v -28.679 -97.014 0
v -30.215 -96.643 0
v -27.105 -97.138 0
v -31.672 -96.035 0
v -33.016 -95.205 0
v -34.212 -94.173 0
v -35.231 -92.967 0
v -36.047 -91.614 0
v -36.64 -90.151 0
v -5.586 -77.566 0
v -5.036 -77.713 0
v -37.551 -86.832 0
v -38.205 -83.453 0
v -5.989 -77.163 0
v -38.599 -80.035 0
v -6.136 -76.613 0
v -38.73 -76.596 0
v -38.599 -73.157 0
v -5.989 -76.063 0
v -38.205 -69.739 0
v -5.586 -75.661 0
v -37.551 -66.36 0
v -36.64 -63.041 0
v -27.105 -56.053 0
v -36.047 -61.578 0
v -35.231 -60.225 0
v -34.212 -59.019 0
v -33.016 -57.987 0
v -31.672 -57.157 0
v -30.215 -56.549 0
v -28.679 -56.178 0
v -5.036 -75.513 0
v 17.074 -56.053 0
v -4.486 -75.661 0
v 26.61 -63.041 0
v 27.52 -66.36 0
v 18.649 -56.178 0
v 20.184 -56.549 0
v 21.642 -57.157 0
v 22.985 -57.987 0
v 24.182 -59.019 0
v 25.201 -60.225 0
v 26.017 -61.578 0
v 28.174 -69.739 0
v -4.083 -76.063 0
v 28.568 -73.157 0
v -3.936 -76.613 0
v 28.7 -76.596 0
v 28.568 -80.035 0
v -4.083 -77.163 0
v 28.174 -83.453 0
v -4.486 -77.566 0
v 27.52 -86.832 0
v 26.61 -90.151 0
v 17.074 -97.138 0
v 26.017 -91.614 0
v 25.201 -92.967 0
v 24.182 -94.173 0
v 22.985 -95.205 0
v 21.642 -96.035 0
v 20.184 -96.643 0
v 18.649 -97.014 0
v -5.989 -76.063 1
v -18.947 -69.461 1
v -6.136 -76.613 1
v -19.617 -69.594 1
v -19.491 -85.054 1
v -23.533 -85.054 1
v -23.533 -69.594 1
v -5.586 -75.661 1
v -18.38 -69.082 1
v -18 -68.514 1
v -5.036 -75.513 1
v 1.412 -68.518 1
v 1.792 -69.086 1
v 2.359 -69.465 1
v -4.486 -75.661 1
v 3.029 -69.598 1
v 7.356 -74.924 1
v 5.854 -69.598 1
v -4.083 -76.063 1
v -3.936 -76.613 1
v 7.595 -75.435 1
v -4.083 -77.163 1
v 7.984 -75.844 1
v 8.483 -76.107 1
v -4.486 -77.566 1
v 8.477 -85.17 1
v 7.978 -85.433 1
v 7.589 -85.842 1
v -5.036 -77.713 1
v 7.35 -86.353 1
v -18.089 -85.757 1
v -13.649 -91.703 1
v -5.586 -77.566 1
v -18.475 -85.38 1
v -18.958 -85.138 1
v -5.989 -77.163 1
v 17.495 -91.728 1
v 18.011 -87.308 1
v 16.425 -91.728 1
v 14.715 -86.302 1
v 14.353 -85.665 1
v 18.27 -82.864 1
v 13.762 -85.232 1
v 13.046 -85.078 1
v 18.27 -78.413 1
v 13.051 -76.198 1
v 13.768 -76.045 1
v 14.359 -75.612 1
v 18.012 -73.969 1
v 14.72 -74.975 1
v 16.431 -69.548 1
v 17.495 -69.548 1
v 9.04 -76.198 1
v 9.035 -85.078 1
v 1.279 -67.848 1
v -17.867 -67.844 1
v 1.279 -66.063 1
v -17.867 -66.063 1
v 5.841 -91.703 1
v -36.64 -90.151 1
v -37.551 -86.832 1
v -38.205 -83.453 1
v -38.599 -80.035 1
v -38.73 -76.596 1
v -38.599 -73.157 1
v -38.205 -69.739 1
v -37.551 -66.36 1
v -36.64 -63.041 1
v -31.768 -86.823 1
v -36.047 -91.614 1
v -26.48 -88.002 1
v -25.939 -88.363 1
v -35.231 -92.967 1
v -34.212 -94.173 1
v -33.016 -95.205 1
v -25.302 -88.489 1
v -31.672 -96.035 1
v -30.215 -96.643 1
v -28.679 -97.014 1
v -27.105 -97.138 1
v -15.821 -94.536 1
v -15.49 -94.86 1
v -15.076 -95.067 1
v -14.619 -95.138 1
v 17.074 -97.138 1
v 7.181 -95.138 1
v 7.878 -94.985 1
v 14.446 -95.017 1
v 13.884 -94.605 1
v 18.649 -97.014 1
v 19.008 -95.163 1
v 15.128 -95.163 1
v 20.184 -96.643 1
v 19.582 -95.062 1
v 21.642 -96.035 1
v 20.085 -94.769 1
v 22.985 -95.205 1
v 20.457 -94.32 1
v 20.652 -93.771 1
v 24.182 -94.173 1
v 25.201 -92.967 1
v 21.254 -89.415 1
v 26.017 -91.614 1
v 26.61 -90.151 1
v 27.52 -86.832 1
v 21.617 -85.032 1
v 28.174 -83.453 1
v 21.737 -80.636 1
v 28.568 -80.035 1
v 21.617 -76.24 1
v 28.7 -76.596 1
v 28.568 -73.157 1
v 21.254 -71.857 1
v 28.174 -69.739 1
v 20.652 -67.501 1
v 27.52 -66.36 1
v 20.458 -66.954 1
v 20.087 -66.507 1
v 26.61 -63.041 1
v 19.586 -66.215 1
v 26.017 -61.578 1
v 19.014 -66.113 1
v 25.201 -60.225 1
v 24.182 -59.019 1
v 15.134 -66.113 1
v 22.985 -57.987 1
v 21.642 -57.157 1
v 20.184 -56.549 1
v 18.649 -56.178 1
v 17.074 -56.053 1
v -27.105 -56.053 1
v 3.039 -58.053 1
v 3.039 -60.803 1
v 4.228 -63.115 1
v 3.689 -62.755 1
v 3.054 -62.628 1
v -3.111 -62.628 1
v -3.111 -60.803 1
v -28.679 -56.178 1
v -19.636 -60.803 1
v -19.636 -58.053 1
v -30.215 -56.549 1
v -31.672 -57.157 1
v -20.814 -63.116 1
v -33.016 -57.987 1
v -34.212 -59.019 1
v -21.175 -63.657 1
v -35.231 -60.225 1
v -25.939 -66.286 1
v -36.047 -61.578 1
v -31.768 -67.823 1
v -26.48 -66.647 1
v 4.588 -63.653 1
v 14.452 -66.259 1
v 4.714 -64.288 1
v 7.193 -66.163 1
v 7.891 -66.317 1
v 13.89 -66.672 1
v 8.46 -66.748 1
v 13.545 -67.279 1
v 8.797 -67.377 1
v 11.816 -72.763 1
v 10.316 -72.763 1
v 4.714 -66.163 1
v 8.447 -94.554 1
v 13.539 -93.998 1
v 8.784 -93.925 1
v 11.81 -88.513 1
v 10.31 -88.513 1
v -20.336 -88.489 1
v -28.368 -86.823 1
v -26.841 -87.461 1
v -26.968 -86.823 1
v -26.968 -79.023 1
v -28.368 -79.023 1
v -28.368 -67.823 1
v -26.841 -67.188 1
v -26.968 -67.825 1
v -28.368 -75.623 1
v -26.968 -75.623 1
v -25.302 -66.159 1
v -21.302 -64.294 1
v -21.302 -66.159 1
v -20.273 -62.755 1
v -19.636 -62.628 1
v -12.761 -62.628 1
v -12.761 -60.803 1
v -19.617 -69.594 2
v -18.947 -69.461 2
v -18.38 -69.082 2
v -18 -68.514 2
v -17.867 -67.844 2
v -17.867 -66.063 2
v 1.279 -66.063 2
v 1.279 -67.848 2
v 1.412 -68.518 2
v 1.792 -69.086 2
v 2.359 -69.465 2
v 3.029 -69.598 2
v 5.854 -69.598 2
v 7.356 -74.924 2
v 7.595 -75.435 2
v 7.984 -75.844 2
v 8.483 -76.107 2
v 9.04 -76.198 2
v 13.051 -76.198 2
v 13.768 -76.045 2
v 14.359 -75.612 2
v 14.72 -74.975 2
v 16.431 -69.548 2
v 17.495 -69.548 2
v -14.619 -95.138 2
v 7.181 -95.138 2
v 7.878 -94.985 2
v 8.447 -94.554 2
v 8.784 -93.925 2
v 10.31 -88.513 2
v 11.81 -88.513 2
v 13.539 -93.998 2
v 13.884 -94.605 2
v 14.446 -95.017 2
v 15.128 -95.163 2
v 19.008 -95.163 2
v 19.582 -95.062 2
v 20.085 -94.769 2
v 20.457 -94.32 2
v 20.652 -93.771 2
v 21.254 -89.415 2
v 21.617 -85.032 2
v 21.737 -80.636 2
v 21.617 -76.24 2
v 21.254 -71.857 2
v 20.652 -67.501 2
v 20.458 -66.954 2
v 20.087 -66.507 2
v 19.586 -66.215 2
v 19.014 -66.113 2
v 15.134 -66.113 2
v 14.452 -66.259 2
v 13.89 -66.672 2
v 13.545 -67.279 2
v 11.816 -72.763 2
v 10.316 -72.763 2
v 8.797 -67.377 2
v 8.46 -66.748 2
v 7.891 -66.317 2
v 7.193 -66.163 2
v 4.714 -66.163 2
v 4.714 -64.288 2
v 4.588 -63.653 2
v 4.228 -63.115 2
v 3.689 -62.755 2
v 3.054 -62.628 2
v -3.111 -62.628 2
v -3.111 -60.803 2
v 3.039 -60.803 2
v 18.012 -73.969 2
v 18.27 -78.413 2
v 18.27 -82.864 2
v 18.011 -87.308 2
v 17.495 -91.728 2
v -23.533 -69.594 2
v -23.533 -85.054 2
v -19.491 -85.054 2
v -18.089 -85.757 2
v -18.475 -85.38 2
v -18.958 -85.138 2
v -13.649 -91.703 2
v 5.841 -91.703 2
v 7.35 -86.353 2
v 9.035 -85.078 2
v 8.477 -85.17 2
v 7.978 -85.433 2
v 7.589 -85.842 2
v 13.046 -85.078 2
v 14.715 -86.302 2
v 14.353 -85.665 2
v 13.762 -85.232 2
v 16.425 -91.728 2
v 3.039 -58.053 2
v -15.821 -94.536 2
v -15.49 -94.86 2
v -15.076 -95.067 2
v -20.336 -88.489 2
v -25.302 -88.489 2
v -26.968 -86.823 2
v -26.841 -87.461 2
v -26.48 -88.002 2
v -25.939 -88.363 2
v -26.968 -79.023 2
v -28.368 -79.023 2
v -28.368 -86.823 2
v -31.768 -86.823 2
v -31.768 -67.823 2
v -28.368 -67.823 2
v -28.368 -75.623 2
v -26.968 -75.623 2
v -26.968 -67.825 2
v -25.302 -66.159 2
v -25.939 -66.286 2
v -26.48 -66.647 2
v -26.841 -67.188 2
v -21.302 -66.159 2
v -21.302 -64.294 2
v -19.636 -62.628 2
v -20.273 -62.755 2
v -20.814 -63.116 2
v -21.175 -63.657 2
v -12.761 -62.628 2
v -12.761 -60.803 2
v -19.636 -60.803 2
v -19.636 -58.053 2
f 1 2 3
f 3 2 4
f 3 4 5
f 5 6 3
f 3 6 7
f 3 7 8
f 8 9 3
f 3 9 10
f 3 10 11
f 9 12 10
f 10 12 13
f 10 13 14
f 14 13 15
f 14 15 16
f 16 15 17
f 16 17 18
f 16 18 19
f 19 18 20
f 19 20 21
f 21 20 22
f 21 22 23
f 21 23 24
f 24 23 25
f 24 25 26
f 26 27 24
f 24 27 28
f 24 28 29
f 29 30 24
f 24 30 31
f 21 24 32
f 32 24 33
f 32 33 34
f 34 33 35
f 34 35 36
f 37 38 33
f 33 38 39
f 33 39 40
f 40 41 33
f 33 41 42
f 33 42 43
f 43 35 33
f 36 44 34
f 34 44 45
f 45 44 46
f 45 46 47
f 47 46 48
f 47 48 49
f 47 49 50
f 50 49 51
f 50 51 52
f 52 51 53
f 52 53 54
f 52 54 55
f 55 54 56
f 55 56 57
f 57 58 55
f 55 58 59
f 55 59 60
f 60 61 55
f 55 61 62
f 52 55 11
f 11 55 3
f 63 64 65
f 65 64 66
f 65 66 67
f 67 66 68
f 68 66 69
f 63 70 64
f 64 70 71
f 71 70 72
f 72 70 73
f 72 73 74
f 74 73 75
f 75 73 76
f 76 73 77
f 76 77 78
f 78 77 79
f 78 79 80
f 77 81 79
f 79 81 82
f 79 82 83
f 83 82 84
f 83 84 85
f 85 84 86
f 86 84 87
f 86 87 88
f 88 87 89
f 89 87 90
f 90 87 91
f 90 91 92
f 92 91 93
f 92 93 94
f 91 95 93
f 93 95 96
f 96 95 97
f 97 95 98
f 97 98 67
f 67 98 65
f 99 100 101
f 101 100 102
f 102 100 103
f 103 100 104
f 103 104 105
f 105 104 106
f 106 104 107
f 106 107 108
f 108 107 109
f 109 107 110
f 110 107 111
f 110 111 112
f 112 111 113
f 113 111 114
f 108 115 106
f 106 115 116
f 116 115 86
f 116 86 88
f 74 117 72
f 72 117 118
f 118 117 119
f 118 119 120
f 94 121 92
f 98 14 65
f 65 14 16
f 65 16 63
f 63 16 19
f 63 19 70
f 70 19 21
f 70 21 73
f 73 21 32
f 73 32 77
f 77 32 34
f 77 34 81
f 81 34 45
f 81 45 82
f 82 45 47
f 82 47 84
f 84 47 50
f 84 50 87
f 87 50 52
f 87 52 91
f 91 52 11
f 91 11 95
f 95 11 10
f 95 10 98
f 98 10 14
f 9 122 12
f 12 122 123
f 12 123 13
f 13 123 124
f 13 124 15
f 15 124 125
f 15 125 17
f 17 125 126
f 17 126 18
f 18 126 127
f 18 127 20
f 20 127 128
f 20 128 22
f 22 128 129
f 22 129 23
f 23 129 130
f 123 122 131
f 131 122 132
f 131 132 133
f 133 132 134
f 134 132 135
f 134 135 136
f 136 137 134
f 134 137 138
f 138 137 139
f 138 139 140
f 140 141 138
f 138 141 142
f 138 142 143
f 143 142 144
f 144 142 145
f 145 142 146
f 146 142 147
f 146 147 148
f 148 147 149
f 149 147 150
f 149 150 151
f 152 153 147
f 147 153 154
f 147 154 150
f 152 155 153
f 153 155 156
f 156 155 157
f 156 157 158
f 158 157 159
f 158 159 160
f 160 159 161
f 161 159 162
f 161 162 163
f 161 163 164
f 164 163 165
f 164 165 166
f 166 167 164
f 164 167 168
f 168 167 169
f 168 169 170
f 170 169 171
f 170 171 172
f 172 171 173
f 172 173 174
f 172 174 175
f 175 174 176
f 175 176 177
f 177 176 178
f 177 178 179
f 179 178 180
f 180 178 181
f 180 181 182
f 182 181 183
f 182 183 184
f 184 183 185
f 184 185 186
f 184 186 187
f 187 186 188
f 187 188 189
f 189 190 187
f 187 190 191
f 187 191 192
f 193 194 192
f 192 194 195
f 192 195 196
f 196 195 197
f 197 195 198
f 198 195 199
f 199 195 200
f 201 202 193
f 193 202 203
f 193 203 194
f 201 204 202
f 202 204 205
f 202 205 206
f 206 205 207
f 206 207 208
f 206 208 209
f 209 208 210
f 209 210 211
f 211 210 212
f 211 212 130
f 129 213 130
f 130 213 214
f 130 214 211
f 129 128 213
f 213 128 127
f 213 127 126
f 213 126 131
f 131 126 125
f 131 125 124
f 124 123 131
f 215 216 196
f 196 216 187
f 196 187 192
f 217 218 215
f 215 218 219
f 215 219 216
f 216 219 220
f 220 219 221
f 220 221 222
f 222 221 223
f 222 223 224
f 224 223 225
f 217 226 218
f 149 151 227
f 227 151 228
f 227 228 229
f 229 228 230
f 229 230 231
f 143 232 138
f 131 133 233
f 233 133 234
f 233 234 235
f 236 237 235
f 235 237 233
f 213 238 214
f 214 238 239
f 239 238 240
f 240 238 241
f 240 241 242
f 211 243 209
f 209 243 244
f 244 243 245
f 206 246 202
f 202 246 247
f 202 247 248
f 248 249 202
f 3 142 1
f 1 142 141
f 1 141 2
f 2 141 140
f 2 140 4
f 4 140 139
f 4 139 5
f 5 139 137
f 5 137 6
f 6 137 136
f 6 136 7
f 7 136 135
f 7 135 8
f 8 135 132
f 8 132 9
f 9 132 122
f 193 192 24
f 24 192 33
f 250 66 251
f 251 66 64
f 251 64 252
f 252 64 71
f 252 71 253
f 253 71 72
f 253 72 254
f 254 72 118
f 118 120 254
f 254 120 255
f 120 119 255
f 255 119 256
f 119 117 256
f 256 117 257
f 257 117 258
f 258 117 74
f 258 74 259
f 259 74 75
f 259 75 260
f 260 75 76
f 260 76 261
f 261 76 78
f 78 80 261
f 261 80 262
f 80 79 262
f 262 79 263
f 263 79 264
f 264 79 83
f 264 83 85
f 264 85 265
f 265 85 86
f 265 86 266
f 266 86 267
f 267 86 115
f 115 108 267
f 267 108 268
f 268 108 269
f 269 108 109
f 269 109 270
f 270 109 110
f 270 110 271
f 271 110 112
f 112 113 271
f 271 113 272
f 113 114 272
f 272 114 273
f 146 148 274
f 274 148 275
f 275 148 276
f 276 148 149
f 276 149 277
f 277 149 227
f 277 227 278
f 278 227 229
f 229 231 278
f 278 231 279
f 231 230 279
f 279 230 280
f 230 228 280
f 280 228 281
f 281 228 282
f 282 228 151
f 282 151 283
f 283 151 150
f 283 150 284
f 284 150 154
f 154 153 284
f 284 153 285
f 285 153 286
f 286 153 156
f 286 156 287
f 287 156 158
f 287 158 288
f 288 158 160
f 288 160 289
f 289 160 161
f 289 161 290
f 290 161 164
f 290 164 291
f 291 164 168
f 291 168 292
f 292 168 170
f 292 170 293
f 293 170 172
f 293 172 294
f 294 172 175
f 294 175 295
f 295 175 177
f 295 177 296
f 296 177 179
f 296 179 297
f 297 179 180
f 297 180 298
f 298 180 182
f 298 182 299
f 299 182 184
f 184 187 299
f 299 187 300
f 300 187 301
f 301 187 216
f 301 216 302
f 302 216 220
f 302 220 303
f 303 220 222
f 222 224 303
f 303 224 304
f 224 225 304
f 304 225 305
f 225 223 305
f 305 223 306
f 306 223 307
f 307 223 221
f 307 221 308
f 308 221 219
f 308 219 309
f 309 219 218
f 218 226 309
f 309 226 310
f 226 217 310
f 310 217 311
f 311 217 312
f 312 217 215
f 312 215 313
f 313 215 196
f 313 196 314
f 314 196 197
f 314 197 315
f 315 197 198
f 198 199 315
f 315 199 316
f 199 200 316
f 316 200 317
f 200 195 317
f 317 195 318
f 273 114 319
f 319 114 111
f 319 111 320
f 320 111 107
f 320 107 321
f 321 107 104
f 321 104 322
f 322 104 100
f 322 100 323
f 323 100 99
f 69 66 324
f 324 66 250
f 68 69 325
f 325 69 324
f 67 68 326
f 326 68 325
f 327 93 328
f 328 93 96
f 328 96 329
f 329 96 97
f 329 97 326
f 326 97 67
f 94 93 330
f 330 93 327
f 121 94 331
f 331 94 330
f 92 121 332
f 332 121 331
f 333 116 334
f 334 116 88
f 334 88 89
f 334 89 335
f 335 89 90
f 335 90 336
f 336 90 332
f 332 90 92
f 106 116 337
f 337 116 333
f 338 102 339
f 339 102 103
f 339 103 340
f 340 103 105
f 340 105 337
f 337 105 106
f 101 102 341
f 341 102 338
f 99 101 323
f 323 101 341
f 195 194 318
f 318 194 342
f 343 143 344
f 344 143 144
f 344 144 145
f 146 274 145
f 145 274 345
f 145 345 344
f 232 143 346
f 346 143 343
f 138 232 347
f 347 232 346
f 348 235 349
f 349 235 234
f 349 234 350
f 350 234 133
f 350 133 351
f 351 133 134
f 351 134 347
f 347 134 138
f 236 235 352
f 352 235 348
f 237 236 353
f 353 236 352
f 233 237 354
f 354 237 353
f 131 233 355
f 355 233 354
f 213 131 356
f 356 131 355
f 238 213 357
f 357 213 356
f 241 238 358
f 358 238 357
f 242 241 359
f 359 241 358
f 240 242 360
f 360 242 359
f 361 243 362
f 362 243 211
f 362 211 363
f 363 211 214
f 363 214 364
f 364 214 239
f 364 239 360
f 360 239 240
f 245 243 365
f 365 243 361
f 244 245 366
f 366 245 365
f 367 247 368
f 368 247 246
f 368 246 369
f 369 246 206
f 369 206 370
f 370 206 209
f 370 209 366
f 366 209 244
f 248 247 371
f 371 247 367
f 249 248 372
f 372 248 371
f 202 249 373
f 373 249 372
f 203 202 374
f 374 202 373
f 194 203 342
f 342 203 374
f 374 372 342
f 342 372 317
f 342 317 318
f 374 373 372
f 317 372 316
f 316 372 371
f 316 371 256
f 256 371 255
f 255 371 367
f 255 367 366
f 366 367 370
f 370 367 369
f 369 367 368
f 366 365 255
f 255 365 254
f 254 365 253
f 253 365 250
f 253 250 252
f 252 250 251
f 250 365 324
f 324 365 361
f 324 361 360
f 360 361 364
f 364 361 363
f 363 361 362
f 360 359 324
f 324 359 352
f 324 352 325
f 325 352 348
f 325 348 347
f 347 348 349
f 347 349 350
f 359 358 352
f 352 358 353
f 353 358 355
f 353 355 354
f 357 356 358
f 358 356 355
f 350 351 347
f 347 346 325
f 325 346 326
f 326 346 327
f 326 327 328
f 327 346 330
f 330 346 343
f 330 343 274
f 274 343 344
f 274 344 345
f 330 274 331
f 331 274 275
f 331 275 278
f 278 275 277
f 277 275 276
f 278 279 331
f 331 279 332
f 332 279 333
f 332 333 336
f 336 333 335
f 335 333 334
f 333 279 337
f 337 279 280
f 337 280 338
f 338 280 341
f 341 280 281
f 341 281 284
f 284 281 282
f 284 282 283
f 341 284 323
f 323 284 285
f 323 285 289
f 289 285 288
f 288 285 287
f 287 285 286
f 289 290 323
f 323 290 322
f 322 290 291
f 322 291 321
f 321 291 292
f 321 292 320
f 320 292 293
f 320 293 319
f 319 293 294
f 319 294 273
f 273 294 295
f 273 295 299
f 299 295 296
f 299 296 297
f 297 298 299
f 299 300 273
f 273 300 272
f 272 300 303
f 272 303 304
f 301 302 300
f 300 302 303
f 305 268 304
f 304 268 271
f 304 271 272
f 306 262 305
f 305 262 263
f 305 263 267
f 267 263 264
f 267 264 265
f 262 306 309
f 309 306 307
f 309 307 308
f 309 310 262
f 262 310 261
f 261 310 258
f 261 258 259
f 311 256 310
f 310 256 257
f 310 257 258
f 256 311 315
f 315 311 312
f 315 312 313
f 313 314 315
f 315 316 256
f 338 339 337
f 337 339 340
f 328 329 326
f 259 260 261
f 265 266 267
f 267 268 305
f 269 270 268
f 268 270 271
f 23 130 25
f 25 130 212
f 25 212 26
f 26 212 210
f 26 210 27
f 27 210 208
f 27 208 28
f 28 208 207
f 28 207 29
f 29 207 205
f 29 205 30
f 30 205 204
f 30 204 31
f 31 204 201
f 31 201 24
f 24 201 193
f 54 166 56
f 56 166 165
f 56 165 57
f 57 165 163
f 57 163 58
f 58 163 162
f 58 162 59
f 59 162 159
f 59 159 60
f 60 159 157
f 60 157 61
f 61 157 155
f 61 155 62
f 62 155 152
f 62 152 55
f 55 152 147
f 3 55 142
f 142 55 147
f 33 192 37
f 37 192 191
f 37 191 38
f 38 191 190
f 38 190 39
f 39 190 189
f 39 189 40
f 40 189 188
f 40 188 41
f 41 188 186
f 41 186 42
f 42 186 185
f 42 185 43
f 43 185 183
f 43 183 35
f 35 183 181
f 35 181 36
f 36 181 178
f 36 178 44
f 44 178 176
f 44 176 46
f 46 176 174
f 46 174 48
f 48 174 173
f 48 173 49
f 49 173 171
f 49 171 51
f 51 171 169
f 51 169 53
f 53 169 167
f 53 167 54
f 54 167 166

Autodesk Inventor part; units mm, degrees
ref_plane "YZ Plane" through (0, 0, 0) normal (1, 0, 0) x (0, 1, 0)
ref_plane "XZ Plane" through (0, 0, 0) normal (0, 1, 0) x (-1, 0, 0)
ref_plane "XY Plane" through (0, 0, 0) normal (0, 0, 1) x (1, 0, 0)
sketch "Sketch1" plane through (0, 0, 0) normal (0, 0, 1) x (1, 0, 0)
  circle A0 centre (-5.0359, -76.6135) radius 1.1 projected
  line L0 (-5.0359, -76.6135) -> (-5.0359, -51.6135) construction
  line L1 (-36.2859, -51.6135) -> (26.2141, -51.6135) construction
  line L2 (26.2141, -51.6135) -> (26.2141, -101.6135) construction
  line L3 (26.2141, -101.6135) -> (-36.2859, -101.6135) construction
  line L4 (-36.2859, -101.6135) -> (-36.2859, -51.6135) construction
  line L5 (-5.0359, -76.6135) -> (26.2141, -76.6135) construction
  line L6 (2.9641, -58.0535) -> (-19.6359, -58.0535)
  line L7 (-19.6359, -58.0535) -> (-19.6359, -60.8035)
  line L8 (-19.6359, -60.8035) -> (-12.7609, -60.8035)
  line L9 (-12.7609, -60.8035) -> (-12.7609, -62.6285)
  line L10 (-12.7609, -62.6285) -> (-19.6359, -62.6285)
  arc A1 (-19.6359, -62.6285) -> (-21.3019, -64.2945) centre (-19.6359, -64.2945) ccw
  line L11 (-19.6359, -60.8035) -> (-19.6359, -62.6285) construction
  line L12 (-21.3019, -66.1595) -> (-21.3019, -64.2945)
  line L13 (-21.3019, -66.1595) -> (-25.3019, -66.1595)
  arc A2 (-25.3019, -66.1595) -> (-26.9679, -67.8255) centre (-25.3019, -67.8255) ccw
  line L14 (-26.9679, -67.8255) -> (-26.9679, -75.6235)
  line L15 (-26.9679, -75.6235) -> (-28.3679, -75.6235)
  line L16 (-28.3679, -75.6235) -> (-28.3679, -67.8235)
  line L17 (-28.3679, -67.8235) -> (-31.7679, -67.8235)
  line L18 (-31.7679, -67.8235) -> (-31.7679, -86.8235)
  line L19 (-31.7679, -86.8235) -> (-28.3679, -86.8235)
  line L20 (-28.3679, -86.8235) -> (-28.3679, -79.0235)
  line L21 (-28.3679, -79.0235) -> (-26.9679, -79.0235)
  line L22 (-26.9679, -79.0235) -> (-26.9679, -86.8235)
  arc A3 (-26.9679, -86.8235) -> (-25.3019, -88.4895) centre (-25.3019, -86.8235) ccw
  line L23 (-25.3019, -88.4895) -> (-20.3359, -88.4895)
  line L24 (-20.3359, -88.4895) -> (-15.8208, -94.536)
  arc A4 (-15.8208, -94.536) -> (-14.6189, -95.1385) centre (-14.6189, -93.6385) ccw
  line L25 (-14.6189, -95.1385) -> (7.1805, -95.1385)
  arc A5 (7.1805, -95.1385) -> (8.784, -93.9247) centre (7.1805, -93.4725) ccw
  line L26 (8.784, -93.9247) -> (10.3101, -88.5135)
  line L27 (10.3101, -88.5135) -> (11.8101, -88.5135)
  line L28 (11.8101, -88.5135) -> (13.5395, -93.9985)
  arc A6 (13.5395, -93.9985) -> (15.1284, -95.1635) centre (15.1284, -93.4975) ccw
  line L29 (15.1284, -95.1635) -> (19.0084, -95.1635)
  arc A7 (19.0084, -95.1635) -> (20.6518, -93.771) centre (19.0084, -93.4975) ccw
  arc A8 (20.6518, -93.771) -> (20.6518, -67.5009) centre (-58.2626, -80.636) ccw
  line L30 (20.6518, -93.771) -> (20.6518, -67.5009) construction
  arc A9 (20.6518, -67.5009) -> (19.0143, -66.1135) centre (19.0143, -67.7735) ccw
  line L31 (19.0143, -66.1135) -> (15.1343, -66.1135)
  arc A10 (15.1343, -66.1135) -> (13.5454, -67.2785) centre (15.1343, -67.7795) ccw
  line L32 (13.5454, -67.2785) -> (11.816, -72.7635)
  line L33 (11.816, -72.7635) -> (10.316, -72.7635)
  line L34 (10.316, -72.7635) -> (8.7969, -67.3773)
  line L35 (2.9641, -58.0535) -> (3.0391, -58.0535)
  line L36 (3.0391, -58.0535) -> (3.0391, -60.8035)
  line L37 (3.0391, -60.8035) -> (-3.1109, -60.8035)
  line L38 (-3.1109, -60.8035) -> (-3.1109, -62.6285)
  line L39 (-3.1109, -62.6285) -> (3.0541, -62.6285)
  arc A11 (4.7141, -64.2885) -> (3.0541, -62.6285) centre (3.0541, -64.2885) ccw
  line L40 (4.7141, -64.2885) -> (4.7141, -66.1635)
  line L41 (4.7141, -66.1635) -> (7.1935, -66.1635)
  arc A12 (8.7969, -67.3773) -> (7.1935, -66.1635) centre (7.1935, -67.8295) ccw
  arc A13 (17.4947, -91.7285) -> (17.4954, -69.5485) centre (-58.2626, -80.636) ccw
  line L42 (17.4947, -91.7285) -> (16.4255, -91.7285)
  line L43 (16.4255, -91.7285) -> (14.3287, -85.0785)
  line L44 (14.3287, -85.0785) -> (7.7099, -85.0785)
  line L45 (7.7099, -85.0785) -> (5.8414, -91.7035)
  line L46 (5.8414, -91.7035) -> (-13.6489, -91.7035)
  line L47 (-13.6489, -91.7035) -> (-18.6139, -85.0545)
  line L48 (-18.6139, -85.0545) -> (-23.5329, -85.0545)
  line L49 (-23.5329, -85.0545) -> (-23.5329, -76.6135)
  line L50 (-23.5329, -76.6135) -> (-23.5329, -69.5945)
  line L51 (-23.5329, -69.5945) -> (-17.8669, -69.5945)
  line L52 (-17.8669, -69.5945) -> (-17.8669, -66.0635)
  line L53 (-17.8669, -66.0635) -> (-9.3259, -66.0635)
  line L54 (-9.3259, -66.0635) -> (-9.3259, -61.4885)
  line L55 (-9.3259, -61.4885) -> (-6.5459, -61.4885)
  line L56 (-6.5459, -61.4885) -> (-6.5459, -66.0635)
  line L57 (-6.5459, -66.0635) -> (1.2791, -66.0635)
  line L58 (1.2791, -66.0635) -> (1.2791, -69.5985)
  line L59 (1.2791, -69.5985) -> (5.8544, -69.5985)
  line L60 (5.8544, -69.5985) -> (7.7158, -76.1985)
  line L61 (7.7158, -76.1985) -> (14.3346, -76.1985)
  line L62 (14.3346, -76.1985) -> (16.4314, -69.5485)
  line L63 (16.4314, -69.5485) -> (17.4954, -69.5485)
  line L64 (-23.5329, -76.6135) -> (-5.0359, -76.6135) construction
  line L65 (-6.5459, -66.0635) -> (-9.3259, -66.0635)
  arc A14 (13.0515, -76.1985) -> (14.7205, -74.9747) centre (13.0515, -74.4485) ccw
  arc A15 (7.3562, -74.9235) -> (9.0405, -76.1985) centre (9.0405, -74.4485) ccw
  arc A16 (14.7146, -86.3022) -> (13.0456, -85.0785) centre (13.0456, -86.8285) ccw
  arc A17 (9.0346, -85.0785) -> (7.3503, -86.3535) centre (9.0346, -86.8285) ccw
  arc A18 (1.2791, -67.8485) -> (3.0291, -69.5985) centre (3.0291, -67.8485) ccw
  arc A19 (-19.6169, -69.5945) -> (-17.8669, -67.8445) centre (-19.6169, -67.8445) ccw
  arc A20 (-18.089, -85.7574) -> (-19.4912, -85.0545) centre (-19.4912, -86.8045) ccw
  point P0 (0, 0)
  dimension "d9" = 50
  dimension "d22" = 18.56
  dimension "d23" = 8
  dimension "d24" = 22.6
  dimension "d26" = 2.75
  dimension "d27" = 6.875
  dimension "d28" = 1.825
  dimension "d31" = 3.531
  dimension "d32" = 1.666
  dimension "d33" = 1.666
  dimension "d34" = 1.666
  dimension "d40" = 4
  dimension "d42" = 0.99
  dimension "d43" = 1.4
  dimension "d44" = 3.4
  dimension "d45" = 7.8
  dimension "d46" = 19
  dimension "d47" = 1.666
  dimension "d55" = 15.3
  dimension "d56" = 53.25
  dimension "d58" = 18.525
  dimension "d62" = 1.5
  dimension "d65" = 105.75
  dimension "d66" = 18
  dimension "d67" = 1.666
  dimension "d68" = 11.9
  dimension "d69" = 107.5
  dimension "d70" = 1.5
  dimension "d72" = 18.55
  dimension "d73" = 1.666
  dimension "d75" = 1.666
  dimension "d77" = 3.88
  dimension "d78" = 80
  dimension "d82" = 1.66
  dimension "d85" = 10.5
  dimension "d87" = 3.88
  dimension "d88" = 15.75
  dimension "d90" = 107.5
  dimension "d91" = 105.75
  dimension "d94" = 0.075
  dimension "d95" = 6.15
  dimension "d96" = 1.66
  dimension "d97" = 1.666
  dimension "d98" = 9.75
  dimension "d99" = 10.45
  dimension "d101" = 10.55
  dimension "d107" = 3.5
  dimension "d108" = 3.5
  dimension "d111" = 3.5
  dimension "d112" = 3.5
  dimension "d113" = 3.5
  dimension "d114" = 3.5
  dimension "d116" = 3.5
extrude "Extrusion1" add sketch "Sketch1" along normal blind 2 contours L35 L36 L37 L38 L39 A11 L40 L41 A12 L34 L33 L32 A10 L31 A9 A8 A7 L29 A6 L28 L27 L26 A5 L25 A4 L24 L23 A3 L22 L21 L20 L19 L18 L17 L16 L15 L14 A2 L13 L12 A1 L10 L9 L8 L7 L6 | L65 L54 L55 L56
sketch "Sketch2" plane through (0, 0, 0) normal (0, 0, -1) x (-1, 0, 0)
  line L0 (-23.7374, -56.0535) -> (33.7679, -56.0535)
  line L1 (33.7679, -56.0535) -> (33.7679, -97.1385)
  line L2 (33.7679, -97.1385) -> (-23.7374, -97.1385)
  line L3 (-23.7374, -97.1385) -> (-23.7374, -56.0535)
  arc A0 (-23.7374, -56.0535) -> (-23.7374, -97.1385) centre (16.3001, -76.596) ccw
  line L4 (-3.0391, -58.0535) -> (19.6359, -58.0535) construction
  line L5 (-3.0391, -60.8035) -> (-3.0391, -58.0535) construction
  line L6 (3.1109, -60.8035) -> (-3.0391, -60.8035) construction
  line L7 (3.1109, -62.6285) -> (3.1109, -60.8035) construction
  line L8 (-3.0541, -62.6285) -> (3.1109, -62.6285) construction
  arc A1 (-3.0541, -62.6285) -> (-4.7141, -64.2885) centre (-3.0541, -64.2885) ccw construction
  line L9 (-4.7141, -66.1635) -> (-4.7141, -64.2885) construction
  line L10 (-7.1935, -66.1635) -> (-4.7141, -66.1635) construction
  arc A2 (-7.1935, -66.1635) -> (-8.7969, -67.3773) centre (-7.1935, -67.8295) ccw construction
  line L11 (-10.316, -72.7635) -> (-8.7969, -67.3773) construction
  line L12 (-11.816, -72.7635) -> (-10.316, -72.7635) construction
  line L13 (-13.5454, -67.2785) -> (-11.816, -72.7635) construction
  arc A3 (-13.5454, -67.2785) -> (-15.1343, -66.1135) centre (-15.1343, -67.7795) ccw construction
  line L14 (-19.0143, -66.1135) -> (-15.1343, -66.1135) construction
  arc A4 (-19.0143, -66.1135) -> (-20.6518, -67.5009) centre (-19.0143, -67.7735) ccw construction
  arc A5 (-20.6518, -67.5009) -> (-20.6518, -93.771) centre (58.2626, -80.636) ccw construction
  arc A6 (-20.6518, -93.771) -> (-19.0084, -95.1635) centre (-19.0084, -93.4975) ccw construction
  line L15 (-15.1284, -95.1635) -> (-19.0084, -95.1635) construction
  arc A7 (-15.1284, -95.1635) -> (-13.5395, -93.9985) centre (-15.1284, -93.4975) ccw construction
  line L16 (-11.8101, -88.5135) -> (-13.5395, -93.9985) construction
  line L17 (-10.3101, -88.5135) -> (-11.8101, -88.5135) construction
  line L18 (-8.784, -93.9247) -> (-10.3101, -88.5135) construction
  arc A8 (-8.784, -93.9247) -> (-7.1805, -95.1385) centre (-7.1805, -93.4725) ccw construction
  line L19 (14.6189, -95.1385) -> (-7.1805, -95.1385) construction
  arc A9 (14.6189, -95.1385) -> (15.8208, -94.536) centre (14.6189, -93.6385) ccw construction
  line L20 (20.3359, -88.4895) -> (15.8208, -94.536) construction
  line L21 (25.3019, -88.4895) -> (20.3359, -88.4895) construction
  arc A10 (25.3019, -88.4895) -> (26.9679, -86.8235) centre (25.3019, -86.8235) ccw construction
  line L22 (26.9679, -79.0235) -> (26.9679, -86.8235) construction
  line L23 (28.3679, -79.0235) -> (26.9679, -79.0235) construction
  line L24 (28.3679, -86.8235) -> (28.3679, -79.0235) construction
  line L25 (31.7679, -86.8235) -> (28.3679, -86.8235) construction
  line L26 (31.7679, -67.8235) -> (31.7679, -86.8235) construction
  line L27 (28.3679, -67.8235) -> (31.7679, -67.8235) construction
  line L28 (28.3679, -75.6235) -> (28.3679, -67.8235) construction
  line L29 (26.9679, -75.6235) -> (28.3679, -75.6235) construction
  line L30 (26.9679, -67.8255) -> (26.9679, -75.6235) construction
  arc A11 (26.9679, -67.8255) -> (25.3019, -66.1595) centre (25.3019, -67.8255) ccw construction
  line L31 (21.3019, -66.1595) -> (25.3019, -66.1595) construction
  line L32 (21.3019, -64.2945) -> (21.3019, -66.1595) construction
  arc A12 (21.3019, -64.2945) -> (19.6359, -62.6285) centre (19.6359, -64.2945) ccw construction
  line L33 (12.7609, -62.6285) -> (19.6359, -62.6285) construction
  line L34 (12.7609, -60.8035) -> (12.7609, -62.6285) construction
  line L35 (19.6359, -60.8035) -> (12.7609, -60.8035) construction
  line L36 (19.6359, -58.0535) -> (19.6359, -60.8035) construction
  line L37 (-17.4947, -91.7285) -> (-16.4255, -91.7285) construction
  arc A13 (-17.4954, -69.5485) -> (-17.4947, -91.7285) centre (58.2626, -80.636) ccw construction
  line L38 (-16.4314, -69.5485) -> (-17.4954, -69.5485) construction
  line L39 (-14.7205, -74.9747) -> (-16.4314, -69.5485) construction
  arc A14 (-14.7205, -74.9747) -> (-13.0515, -76.1985) centre (-13.0515, -74.4485) ccw construction
  line L40 (-9.0405, -76.1985) -> (-13.0515, -76.1985) construction
  arc A15 (-9.0405, -76.1985) -> (-7.3562, -74.9235) centre (-9.0405, -74.4485) ccw construction
  line L41 (-5.8544, -69.5985) -> (-7.3562, -74.9235) construction
  line L42 (-3.0291, -69.5985) -> (-5.8544, -69.5985) construction
  arc A16 (-3.0291, -69.5985) -> (-1.2791, -67.8485) centre (-3.0291, -67.8485) ccw construction
  line L43 (-1.2791, -66.0635) -> (-1.2791, -67.8485) construction
  line L44 (17.8669, -66.0635) -> (-1.2791, -66.0635) construction
  line L45 (17.8669, -67.8445) -> (17.8669, -66.0635) construction
  arc A17 (17.8669, -67.8445) -> (19.6169, -69.5945) centre (19.6169, -67.8445) ccw construction
  line L46 (23.5329, -69.5945) -> (19.6169, -69.5945) construction
  line L47 (23.5329, -85.0545) -> (23.5329, -69.5945) construction
  line L48 (19.4912, -85.0545) -> (23.5329, -85.0545) construction
  arc A18 (19.4912, -85.0545) -> (18.089, -85.7574) centre (19.4912, -86.8045) ccw construction
  line L49 (13.6489, -91.7035) -> (18.089, -85.7574) construction
  line L50 (-5.8414, -91.7035) -> (13.6489, -91.7035) construction
  line L51 (-7.3503, -86.3535) -> (-5.8414, -91.7035) construction
  arc A19 (-7.3503, -86.3535) -> (-9.0346, -85.0785) centre (-9.0346, -86.8285) ccw construction
  line L52 (-13.0456, -85.0785) -> (-9.0346, -85.0785) construction
  arc A20 (-13.0456, -85.0785) -> (-14.7146, -86.3022) centre (-13.0456, -86.8285) ccw construction
  line L53 (-16.4255, -91.7285) -> (-14.7146, -86.3022) construction
  arc A21 (-20.6518, -67.5009) -> (-20.6518, -93.771) centre (58.2626, -80.636) ccw construction
  line L54 (-21.7374, -80.636) -> (-18.3024, -80.6385) construction
  line L55 (16.3001, -76.596) -> (-28.6999, -76.596) construction
  line L56 (5.0152, -56.0535) -> (5.0152, -97.1385) construction
  arc A22 (33.7679, -97.1385) -> (33.7679, -56.0535) centre (-6.2696, -76.596) ccw
  circle A23 centre (5.0359, -76.6135) radius 1.1 projected
  point P0 (0, 0)
  dimension "d119" = 2
  dimension "d120" = 2
  dimension "d121" = 2
  dimension "d122" = 2
  dimension "d123" = 45
extrude "Extrusion2" add sketch "Sketch2" against normal blind 1
fillet "Fillet1" radius 10 4 edges at (23.7374, -97.1385, 0.5) (23.7374, -56.0535, 0.5) (-33.7679, -56.0535, 0.5) (-33.7679, -97.1385, 0.5)
properties part number "engine _light"
